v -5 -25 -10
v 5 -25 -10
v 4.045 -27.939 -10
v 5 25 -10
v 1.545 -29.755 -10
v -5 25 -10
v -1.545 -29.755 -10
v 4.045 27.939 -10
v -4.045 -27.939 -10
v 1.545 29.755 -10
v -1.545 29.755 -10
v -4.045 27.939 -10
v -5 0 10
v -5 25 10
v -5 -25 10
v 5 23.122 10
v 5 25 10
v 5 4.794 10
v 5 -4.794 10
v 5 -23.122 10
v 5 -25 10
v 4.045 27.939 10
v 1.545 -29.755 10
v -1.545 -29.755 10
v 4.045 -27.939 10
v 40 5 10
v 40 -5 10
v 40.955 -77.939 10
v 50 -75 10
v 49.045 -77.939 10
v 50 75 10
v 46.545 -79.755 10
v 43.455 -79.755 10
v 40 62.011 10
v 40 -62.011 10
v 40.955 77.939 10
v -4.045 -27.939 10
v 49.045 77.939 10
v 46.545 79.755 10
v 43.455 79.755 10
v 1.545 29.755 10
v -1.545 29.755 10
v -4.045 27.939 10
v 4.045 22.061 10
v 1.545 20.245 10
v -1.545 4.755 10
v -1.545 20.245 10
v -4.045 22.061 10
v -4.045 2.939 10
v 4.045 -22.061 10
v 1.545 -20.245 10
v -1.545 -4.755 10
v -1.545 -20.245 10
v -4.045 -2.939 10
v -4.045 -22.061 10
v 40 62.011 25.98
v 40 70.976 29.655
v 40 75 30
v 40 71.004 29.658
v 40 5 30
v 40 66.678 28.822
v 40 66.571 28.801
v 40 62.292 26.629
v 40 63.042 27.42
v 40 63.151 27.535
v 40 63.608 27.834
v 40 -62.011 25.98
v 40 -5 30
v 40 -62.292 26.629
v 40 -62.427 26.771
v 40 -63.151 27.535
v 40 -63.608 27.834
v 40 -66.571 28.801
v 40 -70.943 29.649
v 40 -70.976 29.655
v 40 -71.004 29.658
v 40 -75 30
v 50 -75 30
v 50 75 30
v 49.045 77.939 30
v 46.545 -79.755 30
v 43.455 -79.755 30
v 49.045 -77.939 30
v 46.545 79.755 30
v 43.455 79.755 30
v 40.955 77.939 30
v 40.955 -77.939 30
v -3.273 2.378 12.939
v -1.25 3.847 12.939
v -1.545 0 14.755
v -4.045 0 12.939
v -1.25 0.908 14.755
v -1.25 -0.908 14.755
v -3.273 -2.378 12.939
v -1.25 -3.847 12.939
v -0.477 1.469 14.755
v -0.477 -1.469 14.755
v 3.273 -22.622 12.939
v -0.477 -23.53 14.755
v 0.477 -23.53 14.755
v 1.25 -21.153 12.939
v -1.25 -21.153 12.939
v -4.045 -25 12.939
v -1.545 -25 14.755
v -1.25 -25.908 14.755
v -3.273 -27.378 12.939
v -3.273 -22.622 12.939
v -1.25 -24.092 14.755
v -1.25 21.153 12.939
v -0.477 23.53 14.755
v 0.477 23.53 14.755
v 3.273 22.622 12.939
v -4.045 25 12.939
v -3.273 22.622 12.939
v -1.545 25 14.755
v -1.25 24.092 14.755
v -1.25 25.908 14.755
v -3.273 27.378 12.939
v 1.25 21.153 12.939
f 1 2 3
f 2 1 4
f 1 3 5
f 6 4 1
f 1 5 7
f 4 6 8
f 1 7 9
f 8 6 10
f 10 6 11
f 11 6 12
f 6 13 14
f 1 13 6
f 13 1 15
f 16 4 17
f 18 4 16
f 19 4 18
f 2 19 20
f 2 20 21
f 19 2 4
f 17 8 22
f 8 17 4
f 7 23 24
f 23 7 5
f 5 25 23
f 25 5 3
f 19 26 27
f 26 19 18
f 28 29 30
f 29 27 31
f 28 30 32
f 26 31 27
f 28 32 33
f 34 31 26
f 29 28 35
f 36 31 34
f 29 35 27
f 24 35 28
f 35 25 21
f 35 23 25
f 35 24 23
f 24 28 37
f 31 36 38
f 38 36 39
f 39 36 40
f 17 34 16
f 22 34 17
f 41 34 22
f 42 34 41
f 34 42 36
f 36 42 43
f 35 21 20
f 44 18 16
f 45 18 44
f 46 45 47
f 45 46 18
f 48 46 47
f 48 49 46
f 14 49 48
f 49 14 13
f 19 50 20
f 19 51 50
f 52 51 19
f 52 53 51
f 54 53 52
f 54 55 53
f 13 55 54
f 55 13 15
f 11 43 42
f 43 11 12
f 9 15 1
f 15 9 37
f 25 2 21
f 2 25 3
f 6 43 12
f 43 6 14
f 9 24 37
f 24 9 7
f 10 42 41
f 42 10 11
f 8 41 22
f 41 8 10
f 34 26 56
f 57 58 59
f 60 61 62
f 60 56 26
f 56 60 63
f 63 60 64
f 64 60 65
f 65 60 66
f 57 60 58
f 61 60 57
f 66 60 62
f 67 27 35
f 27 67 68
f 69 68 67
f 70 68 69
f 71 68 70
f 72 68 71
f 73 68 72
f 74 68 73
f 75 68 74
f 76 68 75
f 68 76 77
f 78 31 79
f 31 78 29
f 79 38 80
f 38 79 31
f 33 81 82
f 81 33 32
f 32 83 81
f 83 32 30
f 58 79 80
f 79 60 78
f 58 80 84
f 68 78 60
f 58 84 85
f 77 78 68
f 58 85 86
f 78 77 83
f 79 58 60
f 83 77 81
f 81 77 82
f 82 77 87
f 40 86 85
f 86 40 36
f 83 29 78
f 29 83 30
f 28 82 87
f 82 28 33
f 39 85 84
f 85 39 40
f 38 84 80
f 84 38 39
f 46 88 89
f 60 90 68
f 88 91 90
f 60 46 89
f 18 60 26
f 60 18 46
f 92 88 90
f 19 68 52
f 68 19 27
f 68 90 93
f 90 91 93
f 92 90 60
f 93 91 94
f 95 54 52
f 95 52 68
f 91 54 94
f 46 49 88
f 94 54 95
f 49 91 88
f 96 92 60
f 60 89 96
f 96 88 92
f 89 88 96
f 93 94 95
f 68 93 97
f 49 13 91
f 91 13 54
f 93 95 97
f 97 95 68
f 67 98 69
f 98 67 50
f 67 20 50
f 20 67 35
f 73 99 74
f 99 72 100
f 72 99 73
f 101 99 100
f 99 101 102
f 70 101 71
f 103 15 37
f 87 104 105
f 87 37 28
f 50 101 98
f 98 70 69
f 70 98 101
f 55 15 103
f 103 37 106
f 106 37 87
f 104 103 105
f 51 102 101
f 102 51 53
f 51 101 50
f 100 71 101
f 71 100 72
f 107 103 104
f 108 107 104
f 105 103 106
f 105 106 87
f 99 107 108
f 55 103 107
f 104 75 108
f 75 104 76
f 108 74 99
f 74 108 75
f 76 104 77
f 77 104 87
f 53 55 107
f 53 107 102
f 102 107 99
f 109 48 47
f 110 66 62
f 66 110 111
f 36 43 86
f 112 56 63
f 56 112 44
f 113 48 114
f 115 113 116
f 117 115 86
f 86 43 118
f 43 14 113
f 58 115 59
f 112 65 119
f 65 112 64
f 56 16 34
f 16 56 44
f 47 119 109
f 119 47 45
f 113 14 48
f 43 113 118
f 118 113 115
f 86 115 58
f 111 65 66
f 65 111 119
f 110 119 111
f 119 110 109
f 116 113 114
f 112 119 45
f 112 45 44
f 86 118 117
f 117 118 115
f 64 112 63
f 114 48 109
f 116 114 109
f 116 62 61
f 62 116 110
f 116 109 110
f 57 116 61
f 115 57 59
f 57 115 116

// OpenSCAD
// The seat cusion in our [cargo bike](https://www.r-m.de/de/modelle/packster-60/) isn't sticking to the base board anymore.
// Let's thus print a stopper preventing it from sliding around.

$fn=10;

// insert for slot in base board
slot_diameter=10;
slot_width=50;
height=20;
hull(){
    translate([0,-slot_width/2,0]) cylinder(d=slot_diameter, h=height, center=true);
    translate([0,slot_width/2,0]) cylinder(d=slot_diameter, h=height, center=true);
}


// cushion stopper
stopper_width=150;
distance=45;
hull(){
    translate([distance,-stopper_width/2,height]) cylinder(d=slot_diameter, h=20, center=true);
    translate([distance,stopper_width/2,height]) cylinder(d=slot_diameter, h=20, center=true);
}


// connector "rods"
hull(){
    translate([distance,0,height]) cube([slot_diameter, slot_diameter, height], center=true);
    //connector blob
    translate([0,0,height/2]) difference(){
        sphere(d=slot_diameter, center=true);
        translate([0,0,-slot_diameter*0.5]) cube([10,10,slot_diameter], center=true);
    }
}
hull(){
    translate([distance,-stopper_width/2,height]) cylinder(d=slot_diameter, h=20, center=true);
    //connector blob
    translate([0,-slot_width/2,height/2]) difference(){
        sphere(d=slot_diameter, center=true);
        translate([0,0,-slot_diameter*0.5]) cube([10,10,slot_diameter], center=true);
    }
}
hull(){
    translate([distance,stopper_width/2,height]) cylinder(d=slot_diameter, h=20, center=true);
    //connector blob
    translate([0,slot_width/2,height/2]) difference(){
        sphere(d=slot_diameter, center=true);
        translate([0,0,-slot_diameter*0.5]) cube([10,10,slot_diameter], center=true);
    }
}
